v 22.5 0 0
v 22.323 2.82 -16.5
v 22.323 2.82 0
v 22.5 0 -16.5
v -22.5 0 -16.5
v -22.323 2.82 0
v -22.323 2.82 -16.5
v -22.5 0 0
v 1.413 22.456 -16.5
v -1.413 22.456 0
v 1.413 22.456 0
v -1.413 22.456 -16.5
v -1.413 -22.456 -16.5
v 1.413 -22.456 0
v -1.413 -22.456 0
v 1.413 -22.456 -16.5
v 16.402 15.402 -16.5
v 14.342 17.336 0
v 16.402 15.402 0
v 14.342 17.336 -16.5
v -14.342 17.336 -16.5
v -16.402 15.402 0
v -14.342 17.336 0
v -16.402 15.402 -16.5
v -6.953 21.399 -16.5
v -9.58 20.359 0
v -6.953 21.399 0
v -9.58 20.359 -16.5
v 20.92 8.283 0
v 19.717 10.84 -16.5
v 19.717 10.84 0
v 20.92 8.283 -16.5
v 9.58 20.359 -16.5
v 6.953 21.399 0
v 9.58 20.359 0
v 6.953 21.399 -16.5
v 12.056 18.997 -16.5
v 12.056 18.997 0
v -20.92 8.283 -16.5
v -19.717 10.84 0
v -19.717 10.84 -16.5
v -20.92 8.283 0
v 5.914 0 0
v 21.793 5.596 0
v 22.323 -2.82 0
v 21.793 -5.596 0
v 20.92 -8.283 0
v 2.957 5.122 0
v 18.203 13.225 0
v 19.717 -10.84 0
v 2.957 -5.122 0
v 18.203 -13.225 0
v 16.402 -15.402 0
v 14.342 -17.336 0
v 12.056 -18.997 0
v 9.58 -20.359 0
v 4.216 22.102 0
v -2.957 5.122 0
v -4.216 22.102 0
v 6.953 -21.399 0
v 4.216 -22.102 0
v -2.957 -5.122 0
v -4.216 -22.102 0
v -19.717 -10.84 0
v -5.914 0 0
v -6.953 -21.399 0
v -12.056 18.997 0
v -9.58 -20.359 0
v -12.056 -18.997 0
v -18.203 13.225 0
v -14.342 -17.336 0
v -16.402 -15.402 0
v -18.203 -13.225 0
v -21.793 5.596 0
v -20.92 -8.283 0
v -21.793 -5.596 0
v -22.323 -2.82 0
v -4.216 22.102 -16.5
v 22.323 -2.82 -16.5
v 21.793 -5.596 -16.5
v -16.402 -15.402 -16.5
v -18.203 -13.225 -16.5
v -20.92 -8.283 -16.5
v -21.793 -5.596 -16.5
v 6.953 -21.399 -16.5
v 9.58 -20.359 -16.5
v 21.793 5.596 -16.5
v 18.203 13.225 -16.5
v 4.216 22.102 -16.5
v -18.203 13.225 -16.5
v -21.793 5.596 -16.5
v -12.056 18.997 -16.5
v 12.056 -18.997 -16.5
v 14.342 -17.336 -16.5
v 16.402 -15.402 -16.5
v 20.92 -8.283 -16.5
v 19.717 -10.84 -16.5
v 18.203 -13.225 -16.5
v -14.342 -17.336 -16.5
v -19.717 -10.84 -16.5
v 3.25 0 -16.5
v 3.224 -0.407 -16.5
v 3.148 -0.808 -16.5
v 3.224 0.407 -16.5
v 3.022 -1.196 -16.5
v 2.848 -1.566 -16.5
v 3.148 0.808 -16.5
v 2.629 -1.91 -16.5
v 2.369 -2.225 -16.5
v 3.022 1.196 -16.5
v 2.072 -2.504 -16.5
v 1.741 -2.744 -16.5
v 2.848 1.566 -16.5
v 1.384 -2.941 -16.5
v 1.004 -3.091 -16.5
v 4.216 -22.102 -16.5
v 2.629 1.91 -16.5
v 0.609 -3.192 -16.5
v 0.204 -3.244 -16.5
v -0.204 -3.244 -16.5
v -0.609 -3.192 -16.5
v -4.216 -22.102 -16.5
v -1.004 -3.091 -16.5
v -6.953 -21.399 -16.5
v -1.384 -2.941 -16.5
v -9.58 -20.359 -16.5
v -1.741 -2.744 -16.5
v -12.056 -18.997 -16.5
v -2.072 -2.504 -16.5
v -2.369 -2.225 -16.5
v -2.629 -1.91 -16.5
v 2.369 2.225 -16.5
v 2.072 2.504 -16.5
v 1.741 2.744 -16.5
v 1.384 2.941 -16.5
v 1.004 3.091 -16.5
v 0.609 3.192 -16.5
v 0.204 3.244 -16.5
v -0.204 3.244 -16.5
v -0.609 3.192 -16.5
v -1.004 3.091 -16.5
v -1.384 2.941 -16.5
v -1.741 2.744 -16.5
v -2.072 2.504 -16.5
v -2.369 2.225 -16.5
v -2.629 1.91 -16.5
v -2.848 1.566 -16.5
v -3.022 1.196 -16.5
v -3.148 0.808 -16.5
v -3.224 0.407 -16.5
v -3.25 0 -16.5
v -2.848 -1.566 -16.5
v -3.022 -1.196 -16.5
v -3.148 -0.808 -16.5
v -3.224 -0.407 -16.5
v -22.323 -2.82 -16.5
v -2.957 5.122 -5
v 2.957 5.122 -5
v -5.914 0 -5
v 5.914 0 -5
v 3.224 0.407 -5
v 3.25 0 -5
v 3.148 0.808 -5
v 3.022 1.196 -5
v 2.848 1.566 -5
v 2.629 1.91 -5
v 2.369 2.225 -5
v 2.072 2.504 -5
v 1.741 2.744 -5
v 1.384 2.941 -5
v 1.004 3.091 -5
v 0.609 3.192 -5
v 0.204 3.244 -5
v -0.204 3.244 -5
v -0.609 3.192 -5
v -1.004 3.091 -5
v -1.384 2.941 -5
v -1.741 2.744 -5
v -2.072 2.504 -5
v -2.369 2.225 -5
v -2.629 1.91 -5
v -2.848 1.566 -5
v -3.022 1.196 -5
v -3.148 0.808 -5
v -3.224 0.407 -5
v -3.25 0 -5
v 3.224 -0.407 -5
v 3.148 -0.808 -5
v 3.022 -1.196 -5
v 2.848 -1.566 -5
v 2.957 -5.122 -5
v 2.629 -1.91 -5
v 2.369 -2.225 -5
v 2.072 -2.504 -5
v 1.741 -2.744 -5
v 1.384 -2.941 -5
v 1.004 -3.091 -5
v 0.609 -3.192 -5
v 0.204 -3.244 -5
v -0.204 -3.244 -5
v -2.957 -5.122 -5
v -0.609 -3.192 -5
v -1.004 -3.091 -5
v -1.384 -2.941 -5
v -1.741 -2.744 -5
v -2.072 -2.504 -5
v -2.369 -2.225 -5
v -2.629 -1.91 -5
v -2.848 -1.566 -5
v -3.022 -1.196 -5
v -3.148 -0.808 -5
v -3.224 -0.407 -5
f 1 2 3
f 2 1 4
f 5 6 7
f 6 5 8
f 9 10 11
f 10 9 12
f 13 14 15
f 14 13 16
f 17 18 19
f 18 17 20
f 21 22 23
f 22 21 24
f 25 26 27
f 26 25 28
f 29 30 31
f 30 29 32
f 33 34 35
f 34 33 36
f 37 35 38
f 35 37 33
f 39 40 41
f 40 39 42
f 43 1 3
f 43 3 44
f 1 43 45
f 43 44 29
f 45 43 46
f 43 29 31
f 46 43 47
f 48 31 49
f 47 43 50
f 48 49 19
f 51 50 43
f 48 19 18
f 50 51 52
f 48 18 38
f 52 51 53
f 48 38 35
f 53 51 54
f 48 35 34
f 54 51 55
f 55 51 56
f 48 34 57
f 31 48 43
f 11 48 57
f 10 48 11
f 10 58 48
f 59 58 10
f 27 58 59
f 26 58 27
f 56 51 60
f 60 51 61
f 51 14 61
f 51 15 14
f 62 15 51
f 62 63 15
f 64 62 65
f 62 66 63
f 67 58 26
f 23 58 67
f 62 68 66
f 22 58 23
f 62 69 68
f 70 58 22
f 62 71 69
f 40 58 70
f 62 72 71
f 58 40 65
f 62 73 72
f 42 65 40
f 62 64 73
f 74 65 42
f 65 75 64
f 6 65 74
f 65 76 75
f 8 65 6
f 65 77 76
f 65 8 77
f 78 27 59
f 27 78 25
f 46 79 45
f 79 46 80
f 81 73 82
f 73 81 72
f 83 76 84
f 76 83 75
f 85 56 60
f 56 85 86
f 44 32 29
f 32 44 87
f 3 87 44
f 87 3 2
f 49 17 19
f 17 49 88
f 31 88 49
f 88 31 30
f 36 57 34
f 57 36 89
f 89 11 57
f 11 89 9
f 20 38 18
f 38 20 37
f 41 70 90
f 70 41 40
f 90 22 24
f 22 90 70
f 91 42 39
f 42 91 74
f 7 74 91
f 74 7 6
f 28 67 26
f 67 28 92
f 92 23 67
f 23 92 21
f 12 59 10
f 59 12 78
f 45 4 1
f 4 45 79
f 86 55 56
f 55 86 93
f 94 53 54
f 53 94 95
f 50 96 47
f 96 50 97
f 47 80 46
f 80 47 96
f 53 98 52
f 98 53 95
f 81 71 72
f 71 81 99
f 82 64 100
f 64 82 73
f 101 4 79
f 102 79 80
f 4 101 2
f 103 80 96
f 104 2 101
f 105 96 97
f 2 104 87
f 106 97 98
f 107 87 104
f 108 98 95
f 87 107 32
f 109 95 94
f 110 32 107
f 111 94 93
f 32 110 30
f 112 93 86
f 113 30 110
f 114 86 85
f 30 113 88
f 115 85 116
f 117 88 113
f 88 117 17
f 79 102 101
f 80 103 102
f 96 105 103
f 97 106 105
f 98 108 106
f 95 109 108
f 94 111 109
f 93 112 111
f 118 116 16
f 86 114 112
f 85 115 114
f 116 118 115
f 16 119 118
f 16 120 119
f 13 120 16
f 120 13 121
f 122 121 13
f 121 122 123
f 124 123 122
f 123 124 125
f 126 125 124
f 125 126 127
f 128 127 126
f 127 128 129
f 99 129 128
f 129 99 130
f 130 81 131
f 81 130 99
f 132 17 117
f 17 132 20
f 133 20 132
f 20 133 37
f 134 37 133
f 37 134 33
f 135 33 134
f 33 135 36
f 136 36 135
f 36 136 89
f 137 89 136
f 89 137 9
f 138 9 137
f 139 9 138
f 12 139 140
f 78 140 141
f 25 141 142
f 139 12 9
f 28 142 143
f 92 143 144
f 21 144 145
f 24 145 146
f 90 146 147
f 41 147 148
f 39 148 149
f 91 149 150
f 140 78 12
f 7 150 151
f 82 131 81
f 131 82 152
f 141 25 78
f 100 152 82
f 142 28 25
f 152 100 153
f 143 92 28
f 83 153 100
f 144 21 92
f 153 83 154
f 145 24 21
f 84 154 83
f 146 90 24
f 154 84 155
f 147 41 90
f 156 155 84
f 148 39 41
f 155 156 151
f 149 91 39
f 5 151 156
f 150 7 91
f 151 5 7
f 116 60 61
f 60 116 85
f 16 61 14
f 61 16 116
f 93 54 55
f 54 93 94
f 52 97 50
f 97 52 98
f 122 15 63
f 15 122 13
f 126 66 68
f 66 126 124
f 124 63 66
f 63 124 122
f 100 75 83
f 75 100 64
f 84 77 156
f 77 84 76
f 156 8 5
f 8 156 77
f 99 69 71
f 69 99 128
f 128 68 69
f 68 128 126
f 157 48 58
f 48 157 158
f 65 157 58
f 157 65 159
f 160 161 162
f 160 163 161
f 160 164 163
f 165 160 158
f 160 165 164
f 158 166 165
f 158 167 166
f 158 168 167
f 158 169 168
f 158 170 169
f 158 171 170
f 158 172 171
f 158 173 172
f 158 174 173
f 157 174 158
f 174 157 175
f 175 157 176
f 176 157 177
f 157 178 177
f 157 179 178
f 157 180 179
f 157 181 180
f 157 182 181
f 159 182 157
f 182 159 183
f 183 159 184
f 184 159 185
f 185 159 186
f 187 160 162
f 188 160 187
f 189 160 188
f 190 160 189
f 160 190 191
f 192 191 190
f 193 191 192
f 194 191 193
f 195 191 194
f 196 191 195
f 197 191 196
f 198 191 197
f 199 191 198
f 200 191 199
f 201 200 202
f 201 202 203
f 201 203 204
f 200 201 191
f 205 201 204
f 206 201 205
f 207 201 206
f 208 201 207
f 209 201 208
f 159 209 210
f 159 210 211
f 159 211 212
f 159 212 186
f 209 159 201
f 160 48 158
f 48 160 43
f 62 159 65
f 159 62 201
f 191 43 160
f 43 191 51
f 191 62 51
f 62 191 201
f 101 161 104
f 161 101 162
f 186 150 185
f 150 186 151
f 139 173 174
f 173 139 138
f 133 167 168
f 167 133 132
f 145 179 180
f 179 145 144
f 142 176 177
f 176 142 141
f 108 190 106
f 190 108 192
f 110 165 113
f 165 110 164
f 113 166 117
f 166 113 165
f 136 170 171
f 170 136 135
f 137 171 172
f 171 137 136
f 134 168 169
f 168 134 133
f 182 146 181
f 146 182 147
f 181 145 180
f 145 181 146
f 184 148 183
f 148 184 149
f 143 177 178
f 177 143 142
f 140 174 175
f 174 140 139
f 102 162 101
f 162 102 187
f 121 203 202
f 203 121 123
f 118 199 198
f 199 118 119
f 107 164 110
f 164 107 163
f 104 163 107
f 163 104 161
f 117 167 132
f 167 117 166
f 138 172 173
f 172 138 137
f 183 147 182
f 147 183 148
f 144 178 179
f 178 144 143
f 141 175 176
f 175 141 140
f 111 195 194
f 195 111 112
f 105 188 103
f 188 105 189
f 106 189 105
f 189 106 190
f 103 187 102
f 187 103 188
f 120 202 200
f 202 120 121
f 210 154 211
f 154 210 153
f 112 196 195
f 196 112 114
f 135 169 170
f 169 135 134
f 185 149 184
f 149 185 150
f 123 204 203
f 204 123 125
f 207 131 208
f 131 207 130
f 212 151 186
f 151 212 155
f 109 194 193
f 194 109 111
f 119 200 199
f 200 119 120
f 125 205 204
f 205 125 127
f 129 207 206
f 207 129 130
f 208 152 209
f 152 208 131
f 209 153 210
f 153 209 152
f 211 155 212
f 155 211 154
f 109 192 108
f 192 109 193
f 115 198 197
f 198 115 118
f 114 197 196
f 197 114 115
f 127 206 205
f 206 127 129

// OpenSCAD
$fn = 50;

difference() {
	union() {
		translate(v = [0, 0, -16.5]) {
			cylinder(h = 16.5, r = 22.5);
		}
		#translate(v = [0, 0, -18.0]) {
			cylinder(h = 18, r = 2.875);
		}
	}
	union() {
		translate(v = [0, 0, 0]) {
			rotate(a = [0, 0, 0]) {
				difference() {
					union() {
						translate(v = [0, 0, -5]) {
							linear_extrude(height = 5) {
								polygon(points = [[5.914249999999999, 0.0], [2.957125, 5.1218907443321156], [-2.9571249999999982, 5.1218907443321156], [-5.914249999999999, 7.242867331857232e-16], [-2.9571250000000022, -5.121890744332115], [2.9571249999999956, -5.121890744332118]]);
							}
						}
					}
					union();
				}
			}
		}
		#translate(v = [0, 0, -100.0]) {
			cylinder(h = 200, r = 3.25);
		}
	}
}
